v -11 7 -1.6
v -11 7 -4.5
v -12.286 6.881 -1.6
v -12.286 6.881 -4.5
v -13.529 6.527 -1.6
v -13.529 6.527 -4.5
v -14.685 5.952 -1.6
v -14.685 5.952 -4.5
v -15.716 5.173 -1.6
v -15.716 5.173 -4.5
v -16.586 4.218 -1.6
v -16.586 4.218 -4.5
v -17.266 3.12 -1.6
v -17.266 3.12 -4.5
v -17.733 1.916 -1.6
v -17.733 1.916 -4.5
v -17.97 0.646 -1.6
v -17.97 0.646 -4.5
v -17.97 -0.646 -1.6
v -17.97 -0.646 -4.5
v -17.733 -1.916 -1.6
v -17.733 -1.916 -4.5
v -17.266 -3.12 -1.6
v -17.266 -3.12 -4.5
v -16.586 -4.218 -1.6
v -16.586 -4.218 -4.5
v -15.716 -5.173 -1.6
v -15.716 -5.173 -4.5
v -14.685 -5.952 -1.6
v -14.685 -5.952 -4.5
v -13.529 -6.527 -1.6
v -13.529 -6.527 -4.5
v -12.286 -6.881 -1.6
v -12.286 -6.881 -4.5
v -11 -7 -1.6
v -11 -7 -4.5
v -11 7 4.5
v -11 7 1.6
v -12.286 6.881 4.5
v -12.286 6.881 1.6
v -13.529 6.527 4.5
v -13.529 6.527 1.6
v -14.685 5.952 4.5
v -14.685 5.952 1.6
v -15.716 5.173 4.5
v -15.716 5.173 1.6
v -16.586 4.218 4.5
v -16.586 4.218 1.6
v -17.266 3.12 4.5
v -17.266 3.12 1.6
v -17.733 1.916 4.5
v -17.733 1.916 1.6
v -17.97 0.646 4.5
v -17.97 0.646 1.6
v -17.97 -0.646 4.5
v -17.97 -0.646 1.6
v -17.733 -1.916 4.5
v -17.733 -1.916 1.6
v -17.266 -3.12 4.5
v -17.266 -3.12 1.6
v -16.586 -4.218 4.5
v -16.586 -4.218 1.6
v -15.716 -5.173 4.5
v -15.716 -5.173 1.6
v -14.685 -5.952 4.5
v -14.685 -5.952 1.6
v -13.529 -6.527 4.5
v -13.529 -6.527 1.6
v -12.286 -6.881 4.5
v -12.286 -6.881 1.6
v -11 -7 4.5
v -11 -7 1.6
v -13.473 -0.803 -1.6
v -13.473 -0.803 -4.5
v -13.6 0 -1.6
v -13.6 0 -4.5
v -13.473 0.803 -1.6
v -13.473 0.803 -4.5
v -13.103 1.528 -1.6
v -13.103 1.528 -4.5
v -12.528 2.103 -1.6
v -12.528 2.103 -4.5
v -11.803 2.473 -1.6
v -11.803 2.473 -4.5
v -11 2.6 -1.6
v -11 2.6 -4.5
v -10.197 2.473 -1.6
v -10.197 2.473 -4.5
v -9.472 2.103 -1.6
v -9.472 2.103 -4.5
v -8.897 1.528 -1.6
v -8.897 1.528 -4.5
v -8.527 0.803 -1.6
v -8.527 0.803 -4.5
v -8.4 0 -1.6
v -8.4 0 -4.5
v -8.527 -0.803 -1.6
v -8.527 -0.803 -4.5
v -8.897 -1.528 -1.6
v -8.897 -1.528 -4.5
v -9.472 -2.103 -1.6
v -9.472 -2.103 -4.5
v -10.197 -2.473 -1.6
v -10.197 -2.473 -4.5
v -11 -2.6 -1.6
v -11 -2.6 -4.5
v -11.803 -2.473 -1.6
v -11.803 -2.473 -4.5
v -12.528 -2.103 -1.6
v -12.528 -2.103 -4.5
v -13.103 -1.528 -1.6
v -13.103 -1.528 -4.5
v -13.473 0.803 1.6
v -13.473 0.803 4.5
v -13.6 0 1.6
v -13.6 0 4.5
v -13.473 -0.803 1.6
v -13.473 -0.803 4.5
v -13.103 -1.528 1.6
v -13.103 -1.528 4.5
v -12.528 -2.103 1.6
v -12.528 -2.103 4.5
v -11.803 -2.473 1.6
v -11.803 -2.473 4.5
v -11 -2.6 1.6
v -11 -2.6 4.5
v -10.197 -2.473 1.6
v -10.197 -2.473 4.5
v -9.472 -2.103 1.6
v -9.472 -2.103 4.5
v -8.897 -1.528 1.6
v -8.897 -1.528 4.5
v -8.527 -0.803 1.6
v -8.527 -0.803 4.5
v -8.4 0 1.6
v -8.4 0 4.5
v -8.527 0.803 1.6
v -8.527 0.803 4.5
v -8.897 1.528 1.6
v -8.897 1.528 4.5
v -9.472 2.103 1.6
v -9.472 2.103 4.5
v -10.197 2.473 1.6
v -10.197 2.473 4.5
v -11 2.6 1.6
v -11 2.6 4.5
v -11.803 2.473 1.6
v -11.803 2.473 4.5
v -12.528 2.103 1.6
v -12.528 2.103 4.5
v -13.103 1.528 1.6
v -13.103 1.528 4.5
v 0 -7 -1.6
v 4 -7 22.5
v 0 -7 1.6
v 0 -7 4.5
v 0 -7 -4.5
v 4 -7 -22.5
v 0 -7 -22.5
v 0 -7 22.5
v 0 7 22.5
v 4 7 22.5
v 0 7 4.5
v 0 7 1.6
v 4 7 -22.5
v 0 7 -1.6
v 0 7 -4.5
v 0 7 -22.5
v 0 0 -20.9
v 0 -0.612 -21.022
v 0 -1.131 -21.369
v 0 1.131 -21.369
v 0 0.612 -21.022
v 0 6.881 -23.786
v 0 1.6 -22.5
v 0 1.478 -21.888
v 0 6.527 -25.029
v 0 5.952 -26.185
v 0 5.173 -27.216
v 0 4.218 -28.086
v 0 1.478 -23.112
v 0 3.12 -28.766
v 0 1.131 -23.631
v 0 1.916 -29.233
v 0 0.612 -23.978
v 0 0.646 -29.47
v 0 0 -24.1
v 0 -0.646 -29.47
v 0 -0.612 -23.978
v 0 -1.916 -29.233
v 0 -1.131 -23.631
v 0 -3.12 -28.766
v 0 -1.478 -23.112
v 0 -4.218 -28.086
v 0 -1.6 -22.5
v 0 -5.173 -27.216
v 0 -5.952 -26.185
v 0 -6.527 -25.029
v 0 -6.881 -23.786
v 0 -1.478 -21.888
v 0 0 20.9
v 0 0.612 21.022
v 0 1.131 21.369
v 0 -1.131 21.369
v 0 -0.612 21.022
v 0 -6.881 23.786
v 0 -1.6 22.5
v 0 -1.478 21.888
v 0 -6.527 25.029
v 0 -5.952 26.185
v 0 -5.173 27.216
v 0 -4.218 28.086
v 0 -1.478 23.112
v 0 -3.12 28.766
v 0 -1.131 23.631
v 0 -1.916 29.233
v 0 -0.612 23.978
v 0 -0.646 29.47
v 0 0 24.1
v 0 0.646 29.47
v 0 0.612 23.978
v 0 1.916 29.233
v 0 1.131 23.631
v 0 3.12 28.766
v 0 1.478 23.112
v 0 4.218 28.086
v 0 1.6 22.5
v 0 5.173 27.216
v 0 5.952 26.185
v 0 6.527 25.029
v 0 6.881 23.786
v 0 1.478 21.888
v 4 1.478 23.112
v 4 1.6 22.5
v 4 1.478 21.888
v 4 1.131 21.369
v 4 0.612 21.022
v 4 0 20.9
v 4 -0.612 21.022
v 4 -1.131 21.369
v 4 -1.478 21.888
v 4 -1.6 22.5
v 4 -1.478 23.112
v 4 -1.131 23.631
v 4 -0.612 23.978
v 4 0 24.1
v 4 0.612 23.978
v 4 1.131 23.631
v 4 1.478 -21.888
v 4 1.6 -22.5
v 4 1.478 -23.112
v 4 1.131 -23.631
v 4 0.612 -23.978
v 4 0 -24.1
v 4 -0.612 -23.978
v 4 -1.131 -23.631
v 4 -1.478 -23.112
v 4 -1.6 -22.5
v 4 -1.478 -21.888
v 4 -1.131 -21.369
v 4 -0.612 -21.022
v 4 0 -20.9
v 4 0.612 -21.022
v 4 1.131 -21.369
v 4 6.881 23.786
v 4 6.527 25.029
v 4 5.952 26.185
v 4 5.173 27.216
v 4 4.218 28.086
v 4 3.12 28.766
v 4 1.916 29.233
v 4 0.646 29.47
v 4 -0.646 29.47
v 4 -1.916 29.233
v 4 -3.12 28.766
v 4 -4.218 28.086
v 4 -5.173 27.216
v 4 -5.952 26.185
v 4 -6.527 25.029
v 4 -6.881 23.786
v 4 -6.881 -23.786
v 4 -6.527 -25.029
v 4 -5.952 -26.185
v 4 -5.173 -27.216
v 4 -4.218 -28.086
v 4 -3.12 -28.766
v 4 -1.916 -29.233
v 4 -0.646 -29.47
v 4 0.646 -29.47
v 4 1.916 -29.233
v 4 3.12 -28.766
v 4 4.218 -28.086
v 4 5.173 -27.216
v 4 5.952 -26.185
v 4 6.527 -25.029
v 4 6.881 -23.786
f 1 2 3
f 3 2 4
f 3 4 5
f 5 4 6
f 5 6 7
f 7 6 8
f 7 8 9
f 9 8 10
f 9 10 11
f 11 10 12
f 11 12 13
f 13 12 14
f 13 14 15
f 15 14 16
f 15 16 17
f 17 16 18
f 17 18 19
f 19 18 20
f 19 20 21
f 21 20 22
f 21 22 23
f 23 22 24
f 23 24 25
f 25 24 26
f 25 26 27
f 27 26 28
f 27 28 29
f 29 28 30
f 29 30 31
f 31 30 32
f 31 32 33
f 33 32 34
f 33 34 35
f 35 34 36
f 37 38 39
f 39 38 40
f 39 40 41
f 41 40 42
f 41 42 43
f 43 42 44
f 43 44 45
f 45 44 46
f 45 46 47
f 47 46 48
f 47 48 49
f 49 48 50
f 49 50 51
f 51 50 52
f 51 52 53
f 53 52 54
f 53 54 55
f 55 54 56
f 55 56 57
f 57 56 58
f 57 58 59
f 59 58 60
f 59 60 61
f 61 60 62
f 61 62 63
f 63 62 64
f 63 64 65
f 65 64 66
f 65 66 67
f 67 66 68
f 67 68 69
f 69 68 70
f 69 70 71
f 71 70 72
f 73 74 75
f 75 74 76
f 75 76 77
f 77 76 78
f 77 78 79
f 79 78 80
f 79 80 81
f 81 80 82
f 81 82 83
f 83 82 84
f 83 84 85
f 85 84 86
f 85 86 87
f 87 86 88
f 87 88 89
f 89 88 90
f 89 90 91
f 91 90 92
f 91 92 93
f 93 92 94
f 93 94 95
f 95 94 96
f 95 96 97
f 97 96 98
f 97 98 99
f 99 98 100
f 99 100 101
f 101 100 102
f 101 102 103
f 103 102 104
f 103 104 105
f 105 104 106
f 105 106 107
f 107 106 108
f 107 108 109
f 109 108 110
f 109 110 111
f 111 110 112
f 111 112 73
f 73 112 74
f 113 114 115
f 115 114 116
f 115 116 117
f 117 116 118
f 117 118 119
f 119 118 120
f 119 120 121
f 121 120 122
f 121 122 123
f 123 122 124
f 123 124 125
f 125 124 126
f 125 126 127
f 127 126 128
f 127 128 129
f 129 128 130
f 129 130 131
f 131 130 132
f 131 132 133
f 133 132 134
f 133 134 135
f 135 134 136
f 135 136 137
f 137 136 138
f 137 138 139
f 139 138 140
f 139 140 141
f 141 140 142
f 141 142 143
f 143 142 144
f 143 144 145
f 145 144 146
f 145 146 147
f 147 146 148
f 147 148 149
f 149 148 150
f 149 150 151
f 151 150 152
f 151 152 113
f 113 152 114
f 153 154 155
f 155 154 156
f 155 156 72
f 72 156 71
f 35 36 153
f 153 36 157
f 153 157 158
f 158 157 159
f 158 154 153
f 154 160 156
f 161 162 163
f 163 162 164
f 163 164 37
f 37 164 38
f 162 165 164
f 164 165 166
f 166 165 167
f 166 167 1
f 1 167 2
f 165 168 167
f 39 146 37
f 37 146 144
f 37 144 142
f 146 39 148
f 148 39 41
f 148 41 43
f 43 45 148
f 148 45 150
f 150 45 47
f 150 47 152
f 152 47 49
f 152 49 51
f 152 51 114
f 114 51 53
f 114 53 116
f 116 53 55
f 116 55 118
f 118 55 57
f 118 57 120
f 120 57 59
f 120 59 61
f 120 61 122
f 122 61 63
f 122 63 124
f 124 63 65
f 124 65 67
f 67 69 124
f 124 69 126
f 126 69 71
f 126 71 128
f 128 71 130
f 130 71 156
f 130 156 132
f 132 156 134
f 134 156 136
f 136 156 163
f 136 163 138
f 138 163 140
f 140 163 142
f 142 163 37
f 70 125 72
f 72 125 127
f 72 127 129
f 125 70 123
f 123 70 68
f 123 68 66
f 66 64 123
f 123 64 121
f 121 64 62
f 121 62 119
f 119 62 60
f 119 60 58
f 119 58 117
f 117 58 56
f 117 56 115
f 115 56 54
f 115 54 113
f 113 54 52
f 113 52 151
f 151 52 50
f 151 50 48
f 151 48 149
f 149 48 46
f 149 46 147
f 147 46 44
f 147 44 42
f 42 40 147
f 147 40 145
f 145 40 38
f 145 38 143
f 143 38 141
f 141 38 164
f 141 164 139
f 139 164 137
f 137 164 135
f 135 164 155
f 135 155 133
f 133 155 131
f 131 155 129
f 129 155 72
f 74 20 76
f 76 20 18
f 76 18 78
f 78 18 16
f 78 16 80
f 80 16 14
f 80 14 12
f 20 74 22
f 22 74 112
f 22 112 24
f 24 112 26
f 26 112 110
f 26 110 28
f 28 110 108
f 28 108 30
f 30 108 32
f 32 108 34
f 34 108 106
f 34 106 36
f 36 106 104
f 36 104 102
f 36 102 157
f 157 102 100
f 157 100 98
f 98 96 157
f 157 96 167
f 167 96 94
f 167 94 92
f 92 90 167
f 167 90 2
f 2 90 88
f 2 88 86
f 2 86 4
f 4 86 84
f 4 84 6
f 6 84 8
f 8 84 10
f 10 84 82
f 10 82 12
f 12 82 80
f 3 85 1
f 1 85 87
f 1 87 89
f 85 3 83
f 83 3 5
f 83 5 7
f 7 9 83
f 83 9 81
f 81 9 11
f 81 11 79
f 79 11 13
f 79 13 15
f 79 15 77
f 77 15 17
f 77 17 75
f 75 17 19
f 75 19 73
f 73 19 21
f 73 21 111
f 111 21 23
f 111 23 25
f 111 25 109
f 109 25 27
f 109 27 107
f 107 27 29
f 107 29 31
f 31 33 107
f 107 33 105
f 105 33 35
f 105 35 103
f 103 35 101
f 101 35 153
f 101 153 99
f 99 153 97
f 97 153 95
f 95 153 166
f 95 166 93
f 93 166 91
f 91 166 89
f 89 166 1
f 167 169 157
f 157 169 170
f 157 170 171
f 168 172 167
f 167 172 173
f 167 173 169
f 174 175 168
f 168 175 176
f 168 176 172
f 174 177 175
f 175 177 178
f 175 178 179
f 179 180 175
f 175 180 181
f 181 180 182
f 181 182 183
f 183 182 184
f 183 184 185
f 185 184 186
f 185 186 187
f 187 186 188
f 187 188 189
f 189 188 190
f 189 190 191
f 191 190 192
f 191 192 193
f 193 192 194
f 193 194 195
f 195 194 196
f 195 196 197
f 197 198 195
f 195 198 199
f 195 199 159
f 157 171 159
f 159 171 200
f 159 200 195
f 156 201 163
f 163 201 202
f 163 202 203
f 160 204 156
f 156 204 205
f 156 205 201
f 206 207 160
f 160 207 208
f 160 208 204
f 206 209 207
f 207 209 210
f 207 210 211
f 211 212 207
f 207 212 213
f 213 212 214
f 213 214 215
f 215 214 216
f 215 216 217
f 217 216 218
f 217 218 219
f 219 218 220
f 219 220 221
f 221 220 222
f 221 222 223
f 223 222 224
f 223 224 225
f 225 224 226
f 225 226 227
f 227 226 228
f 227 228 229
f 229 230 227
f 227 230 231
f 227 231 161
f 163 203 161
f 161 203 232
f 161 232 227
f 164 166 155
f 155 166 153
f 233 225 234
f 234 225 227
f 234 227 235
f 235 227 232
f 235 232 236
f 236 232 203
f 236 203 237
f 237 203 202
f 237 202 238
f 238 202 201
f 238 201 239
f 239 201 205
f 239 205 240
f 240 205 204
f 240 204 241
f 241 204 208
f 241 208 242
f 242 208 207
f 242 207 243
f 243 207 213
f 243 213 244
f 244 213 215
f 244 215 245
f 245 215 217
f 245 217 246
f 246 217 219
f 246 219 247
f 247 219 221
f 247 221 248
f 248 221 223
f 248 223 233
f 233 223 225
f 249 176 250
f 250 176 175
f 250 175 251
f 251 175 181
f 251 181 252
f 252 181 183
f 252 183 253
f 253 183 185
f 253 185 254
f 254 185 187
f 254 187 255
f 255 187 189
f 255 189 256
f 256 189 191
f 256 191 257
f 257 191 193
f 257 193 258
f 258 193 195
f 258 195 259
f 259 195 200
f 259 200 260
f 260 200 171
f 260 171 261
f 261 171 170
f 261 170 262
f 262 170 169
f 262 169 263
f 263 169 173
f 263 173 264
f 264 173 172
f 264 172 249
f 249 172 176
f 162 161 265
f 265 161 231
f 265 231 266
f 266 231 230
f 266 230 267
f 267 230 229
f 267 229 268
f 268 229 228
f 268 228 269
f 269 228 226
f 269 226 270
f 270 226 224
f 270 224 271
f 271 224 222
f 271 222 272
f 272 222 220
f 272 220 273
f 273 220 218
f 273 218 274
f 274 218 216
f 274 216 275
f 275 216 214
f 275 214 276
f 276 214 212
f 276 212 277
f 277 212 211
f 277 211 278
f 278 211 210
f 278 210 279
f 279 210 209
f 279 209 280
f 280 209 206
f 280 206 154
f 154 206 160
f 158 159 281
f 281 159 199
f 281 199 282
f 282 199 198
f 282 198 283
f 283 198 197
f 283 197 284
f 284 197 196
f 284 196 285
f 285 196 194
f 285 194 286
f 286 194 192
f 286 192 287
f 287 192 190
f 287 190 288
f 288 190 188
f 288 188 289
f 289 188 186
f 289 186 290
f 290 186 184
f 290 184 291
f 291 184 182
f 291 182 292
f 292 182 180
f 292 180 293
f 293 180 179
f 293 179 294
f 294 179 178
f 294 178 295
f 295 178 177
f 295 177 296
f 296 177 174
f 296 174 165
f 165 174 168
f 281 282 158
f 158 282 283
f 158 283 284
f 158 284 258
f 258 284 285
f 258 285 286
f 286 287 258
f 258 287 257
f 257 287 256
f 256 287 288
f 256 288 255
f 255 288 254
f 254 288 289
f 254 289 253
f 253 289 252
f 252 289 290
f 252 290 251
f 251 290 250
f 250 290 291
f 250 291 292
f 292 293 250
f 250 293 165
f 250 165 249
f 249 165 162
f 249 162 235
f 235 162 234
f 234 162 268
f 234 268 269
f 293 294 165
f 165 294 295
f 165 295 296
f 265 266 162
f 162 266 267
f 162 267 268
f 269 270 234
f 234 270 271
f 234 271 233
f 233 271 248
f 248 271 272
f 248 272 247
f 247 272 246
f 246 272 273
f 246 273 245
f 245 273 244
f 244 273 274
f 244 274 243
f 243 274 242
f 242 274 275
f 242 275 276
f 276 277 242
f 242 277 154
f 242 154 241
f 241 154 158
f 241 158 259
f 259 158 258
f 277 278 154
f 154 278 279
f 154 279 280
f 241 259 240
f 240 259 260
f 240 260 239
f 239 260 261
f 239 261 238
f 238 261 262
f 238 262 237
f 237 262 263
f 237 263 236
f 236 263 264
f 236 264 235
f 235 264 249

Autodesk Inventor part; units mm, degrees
ref_plane "YZ Plane" through (0, 0, 0) normal (1, 0, 0) x (0, 1, 0)
ref_plane "XZ Plane" through (0, 0, 0) normal (0, 1, 0) x (-1, 0, 0)
ref_plane "XY Plane" through (0, 0, 0) normal (0, 0, 1) x (1, 0, 0)
sketch "Esquisse1" plane through (0, 0, 0) normal (1, 0, 0) x (0, 1, 0)
  line L0 (0, 22.5) -> (0, -22.5) construction
  line L1 (-7, 22.5) -> (-7, -22.5)
  line L2 (7, -22.5) -> (7, 22.5)
  arc A0 (7, 22.5) -> (-7, 22.5) centre (0, 22.5) ccw
  arc A1 (-7, -22.5) -> (7, -22.5) centre (0, -22.5) ccw
  circle A2 centre (0, 22.5) radius 1.6
  circle A3 centre (0, -22.5) radius 1.6
  point P0 (0, 0)
  dimension "d0" = 45
  dimension "d1" = 3.2
  dimension "d2" = 14
extrude "Extrusion1" add sketch "Esquisse1" along normal blind 4
sketch "Esquisse2" plane through (0, 7, 22.5) normal (0, 1, 0) x (1, 0, 0)
  line L0 (0, 51.1) -> (0, 0)
  line L1 (-18, 24.1) -> (0, 24.1)
  line L2 (0, 24.1) -> (0, 27)
  line L3 (0, 27) -> (-18, 27)
  line L4 (-18, 27) -> (-18, 24.1)
  line L5 (-18, 24.1) -> (0, 27) construction
  line L6 (0, 24.1) -> (-18, 27) construction
  line L7 (-18, 18) -> (0, 18)
  line L8 (0, 18) -> (0, 20.9)
  line L9 (0, 20.9) -> (-18, 20.9)
  line L10 (-18, 20.9) -> (-18, 18)
  line L11 (-18, 18) -> (0, 20.9) construction
  line L12 (0, 18) -> (-18, 20.9) construction
  line L13 (0, 18) -> (0, 27) construction
  line L14 (0, 45) -> (0, 0) construction
  point P0 (0, 22.5)
  point P1 (-9, 25.55)
  point P2 (-9, 19.45)
  point P3 (0, 25.55)
  point P4 (0, 22.5)
  point P5 (0, 24.1)
  point P6 (0, 18)
  point P7 (0, 20.9)
  dimension "d6" = 2.9
  dimension "d7" = 18
  dimension "d10" = 3.2
extrude "Extrusion2" add sketch "Esquisse2" against normal up to surface (14 mm away)
sketch "Esquisse3" plane through (-18, 7, 4.5) normal (0, 0, 1) x (1, 0, 0)
  arc A0 (7, 0) -> (7, -14) centre (7, -7) ccw
  line L0 (0, 0) -> (18, 0) construction
  line L1 (7, 0) -> (18, 0)
  line L2 (18, -14) -> (7, -14)
  line L3 (18, 0) -> (18, 5)
  line L4 (18, 5) -> (-5, 5)
  line L5 (-5, 5) -> (-5, -19)
  line L6 (-5, -19) -> (18, -19)
  line L7 (18, -19) -> (18, -14)
  line L8 (18, 0) -> (18, -14) projected
  line L9 (0, 0) -> (0, -14) construction
  line L10 (0, -7) -> (-5, -7) construction
  circle A1 centre (7, -7) radius 2.6
  point P0 (18, -7)
  dimension "d11" = 14
  dimension "d12" = 5
  dimension "d16" = 5.2
extrude "Extrusion3" cut sketch "Esquisse3" against normal through all contours A0 L2 L7 L6 L5 L4 L3 L1 | A1
properties part number "support_realsense"
